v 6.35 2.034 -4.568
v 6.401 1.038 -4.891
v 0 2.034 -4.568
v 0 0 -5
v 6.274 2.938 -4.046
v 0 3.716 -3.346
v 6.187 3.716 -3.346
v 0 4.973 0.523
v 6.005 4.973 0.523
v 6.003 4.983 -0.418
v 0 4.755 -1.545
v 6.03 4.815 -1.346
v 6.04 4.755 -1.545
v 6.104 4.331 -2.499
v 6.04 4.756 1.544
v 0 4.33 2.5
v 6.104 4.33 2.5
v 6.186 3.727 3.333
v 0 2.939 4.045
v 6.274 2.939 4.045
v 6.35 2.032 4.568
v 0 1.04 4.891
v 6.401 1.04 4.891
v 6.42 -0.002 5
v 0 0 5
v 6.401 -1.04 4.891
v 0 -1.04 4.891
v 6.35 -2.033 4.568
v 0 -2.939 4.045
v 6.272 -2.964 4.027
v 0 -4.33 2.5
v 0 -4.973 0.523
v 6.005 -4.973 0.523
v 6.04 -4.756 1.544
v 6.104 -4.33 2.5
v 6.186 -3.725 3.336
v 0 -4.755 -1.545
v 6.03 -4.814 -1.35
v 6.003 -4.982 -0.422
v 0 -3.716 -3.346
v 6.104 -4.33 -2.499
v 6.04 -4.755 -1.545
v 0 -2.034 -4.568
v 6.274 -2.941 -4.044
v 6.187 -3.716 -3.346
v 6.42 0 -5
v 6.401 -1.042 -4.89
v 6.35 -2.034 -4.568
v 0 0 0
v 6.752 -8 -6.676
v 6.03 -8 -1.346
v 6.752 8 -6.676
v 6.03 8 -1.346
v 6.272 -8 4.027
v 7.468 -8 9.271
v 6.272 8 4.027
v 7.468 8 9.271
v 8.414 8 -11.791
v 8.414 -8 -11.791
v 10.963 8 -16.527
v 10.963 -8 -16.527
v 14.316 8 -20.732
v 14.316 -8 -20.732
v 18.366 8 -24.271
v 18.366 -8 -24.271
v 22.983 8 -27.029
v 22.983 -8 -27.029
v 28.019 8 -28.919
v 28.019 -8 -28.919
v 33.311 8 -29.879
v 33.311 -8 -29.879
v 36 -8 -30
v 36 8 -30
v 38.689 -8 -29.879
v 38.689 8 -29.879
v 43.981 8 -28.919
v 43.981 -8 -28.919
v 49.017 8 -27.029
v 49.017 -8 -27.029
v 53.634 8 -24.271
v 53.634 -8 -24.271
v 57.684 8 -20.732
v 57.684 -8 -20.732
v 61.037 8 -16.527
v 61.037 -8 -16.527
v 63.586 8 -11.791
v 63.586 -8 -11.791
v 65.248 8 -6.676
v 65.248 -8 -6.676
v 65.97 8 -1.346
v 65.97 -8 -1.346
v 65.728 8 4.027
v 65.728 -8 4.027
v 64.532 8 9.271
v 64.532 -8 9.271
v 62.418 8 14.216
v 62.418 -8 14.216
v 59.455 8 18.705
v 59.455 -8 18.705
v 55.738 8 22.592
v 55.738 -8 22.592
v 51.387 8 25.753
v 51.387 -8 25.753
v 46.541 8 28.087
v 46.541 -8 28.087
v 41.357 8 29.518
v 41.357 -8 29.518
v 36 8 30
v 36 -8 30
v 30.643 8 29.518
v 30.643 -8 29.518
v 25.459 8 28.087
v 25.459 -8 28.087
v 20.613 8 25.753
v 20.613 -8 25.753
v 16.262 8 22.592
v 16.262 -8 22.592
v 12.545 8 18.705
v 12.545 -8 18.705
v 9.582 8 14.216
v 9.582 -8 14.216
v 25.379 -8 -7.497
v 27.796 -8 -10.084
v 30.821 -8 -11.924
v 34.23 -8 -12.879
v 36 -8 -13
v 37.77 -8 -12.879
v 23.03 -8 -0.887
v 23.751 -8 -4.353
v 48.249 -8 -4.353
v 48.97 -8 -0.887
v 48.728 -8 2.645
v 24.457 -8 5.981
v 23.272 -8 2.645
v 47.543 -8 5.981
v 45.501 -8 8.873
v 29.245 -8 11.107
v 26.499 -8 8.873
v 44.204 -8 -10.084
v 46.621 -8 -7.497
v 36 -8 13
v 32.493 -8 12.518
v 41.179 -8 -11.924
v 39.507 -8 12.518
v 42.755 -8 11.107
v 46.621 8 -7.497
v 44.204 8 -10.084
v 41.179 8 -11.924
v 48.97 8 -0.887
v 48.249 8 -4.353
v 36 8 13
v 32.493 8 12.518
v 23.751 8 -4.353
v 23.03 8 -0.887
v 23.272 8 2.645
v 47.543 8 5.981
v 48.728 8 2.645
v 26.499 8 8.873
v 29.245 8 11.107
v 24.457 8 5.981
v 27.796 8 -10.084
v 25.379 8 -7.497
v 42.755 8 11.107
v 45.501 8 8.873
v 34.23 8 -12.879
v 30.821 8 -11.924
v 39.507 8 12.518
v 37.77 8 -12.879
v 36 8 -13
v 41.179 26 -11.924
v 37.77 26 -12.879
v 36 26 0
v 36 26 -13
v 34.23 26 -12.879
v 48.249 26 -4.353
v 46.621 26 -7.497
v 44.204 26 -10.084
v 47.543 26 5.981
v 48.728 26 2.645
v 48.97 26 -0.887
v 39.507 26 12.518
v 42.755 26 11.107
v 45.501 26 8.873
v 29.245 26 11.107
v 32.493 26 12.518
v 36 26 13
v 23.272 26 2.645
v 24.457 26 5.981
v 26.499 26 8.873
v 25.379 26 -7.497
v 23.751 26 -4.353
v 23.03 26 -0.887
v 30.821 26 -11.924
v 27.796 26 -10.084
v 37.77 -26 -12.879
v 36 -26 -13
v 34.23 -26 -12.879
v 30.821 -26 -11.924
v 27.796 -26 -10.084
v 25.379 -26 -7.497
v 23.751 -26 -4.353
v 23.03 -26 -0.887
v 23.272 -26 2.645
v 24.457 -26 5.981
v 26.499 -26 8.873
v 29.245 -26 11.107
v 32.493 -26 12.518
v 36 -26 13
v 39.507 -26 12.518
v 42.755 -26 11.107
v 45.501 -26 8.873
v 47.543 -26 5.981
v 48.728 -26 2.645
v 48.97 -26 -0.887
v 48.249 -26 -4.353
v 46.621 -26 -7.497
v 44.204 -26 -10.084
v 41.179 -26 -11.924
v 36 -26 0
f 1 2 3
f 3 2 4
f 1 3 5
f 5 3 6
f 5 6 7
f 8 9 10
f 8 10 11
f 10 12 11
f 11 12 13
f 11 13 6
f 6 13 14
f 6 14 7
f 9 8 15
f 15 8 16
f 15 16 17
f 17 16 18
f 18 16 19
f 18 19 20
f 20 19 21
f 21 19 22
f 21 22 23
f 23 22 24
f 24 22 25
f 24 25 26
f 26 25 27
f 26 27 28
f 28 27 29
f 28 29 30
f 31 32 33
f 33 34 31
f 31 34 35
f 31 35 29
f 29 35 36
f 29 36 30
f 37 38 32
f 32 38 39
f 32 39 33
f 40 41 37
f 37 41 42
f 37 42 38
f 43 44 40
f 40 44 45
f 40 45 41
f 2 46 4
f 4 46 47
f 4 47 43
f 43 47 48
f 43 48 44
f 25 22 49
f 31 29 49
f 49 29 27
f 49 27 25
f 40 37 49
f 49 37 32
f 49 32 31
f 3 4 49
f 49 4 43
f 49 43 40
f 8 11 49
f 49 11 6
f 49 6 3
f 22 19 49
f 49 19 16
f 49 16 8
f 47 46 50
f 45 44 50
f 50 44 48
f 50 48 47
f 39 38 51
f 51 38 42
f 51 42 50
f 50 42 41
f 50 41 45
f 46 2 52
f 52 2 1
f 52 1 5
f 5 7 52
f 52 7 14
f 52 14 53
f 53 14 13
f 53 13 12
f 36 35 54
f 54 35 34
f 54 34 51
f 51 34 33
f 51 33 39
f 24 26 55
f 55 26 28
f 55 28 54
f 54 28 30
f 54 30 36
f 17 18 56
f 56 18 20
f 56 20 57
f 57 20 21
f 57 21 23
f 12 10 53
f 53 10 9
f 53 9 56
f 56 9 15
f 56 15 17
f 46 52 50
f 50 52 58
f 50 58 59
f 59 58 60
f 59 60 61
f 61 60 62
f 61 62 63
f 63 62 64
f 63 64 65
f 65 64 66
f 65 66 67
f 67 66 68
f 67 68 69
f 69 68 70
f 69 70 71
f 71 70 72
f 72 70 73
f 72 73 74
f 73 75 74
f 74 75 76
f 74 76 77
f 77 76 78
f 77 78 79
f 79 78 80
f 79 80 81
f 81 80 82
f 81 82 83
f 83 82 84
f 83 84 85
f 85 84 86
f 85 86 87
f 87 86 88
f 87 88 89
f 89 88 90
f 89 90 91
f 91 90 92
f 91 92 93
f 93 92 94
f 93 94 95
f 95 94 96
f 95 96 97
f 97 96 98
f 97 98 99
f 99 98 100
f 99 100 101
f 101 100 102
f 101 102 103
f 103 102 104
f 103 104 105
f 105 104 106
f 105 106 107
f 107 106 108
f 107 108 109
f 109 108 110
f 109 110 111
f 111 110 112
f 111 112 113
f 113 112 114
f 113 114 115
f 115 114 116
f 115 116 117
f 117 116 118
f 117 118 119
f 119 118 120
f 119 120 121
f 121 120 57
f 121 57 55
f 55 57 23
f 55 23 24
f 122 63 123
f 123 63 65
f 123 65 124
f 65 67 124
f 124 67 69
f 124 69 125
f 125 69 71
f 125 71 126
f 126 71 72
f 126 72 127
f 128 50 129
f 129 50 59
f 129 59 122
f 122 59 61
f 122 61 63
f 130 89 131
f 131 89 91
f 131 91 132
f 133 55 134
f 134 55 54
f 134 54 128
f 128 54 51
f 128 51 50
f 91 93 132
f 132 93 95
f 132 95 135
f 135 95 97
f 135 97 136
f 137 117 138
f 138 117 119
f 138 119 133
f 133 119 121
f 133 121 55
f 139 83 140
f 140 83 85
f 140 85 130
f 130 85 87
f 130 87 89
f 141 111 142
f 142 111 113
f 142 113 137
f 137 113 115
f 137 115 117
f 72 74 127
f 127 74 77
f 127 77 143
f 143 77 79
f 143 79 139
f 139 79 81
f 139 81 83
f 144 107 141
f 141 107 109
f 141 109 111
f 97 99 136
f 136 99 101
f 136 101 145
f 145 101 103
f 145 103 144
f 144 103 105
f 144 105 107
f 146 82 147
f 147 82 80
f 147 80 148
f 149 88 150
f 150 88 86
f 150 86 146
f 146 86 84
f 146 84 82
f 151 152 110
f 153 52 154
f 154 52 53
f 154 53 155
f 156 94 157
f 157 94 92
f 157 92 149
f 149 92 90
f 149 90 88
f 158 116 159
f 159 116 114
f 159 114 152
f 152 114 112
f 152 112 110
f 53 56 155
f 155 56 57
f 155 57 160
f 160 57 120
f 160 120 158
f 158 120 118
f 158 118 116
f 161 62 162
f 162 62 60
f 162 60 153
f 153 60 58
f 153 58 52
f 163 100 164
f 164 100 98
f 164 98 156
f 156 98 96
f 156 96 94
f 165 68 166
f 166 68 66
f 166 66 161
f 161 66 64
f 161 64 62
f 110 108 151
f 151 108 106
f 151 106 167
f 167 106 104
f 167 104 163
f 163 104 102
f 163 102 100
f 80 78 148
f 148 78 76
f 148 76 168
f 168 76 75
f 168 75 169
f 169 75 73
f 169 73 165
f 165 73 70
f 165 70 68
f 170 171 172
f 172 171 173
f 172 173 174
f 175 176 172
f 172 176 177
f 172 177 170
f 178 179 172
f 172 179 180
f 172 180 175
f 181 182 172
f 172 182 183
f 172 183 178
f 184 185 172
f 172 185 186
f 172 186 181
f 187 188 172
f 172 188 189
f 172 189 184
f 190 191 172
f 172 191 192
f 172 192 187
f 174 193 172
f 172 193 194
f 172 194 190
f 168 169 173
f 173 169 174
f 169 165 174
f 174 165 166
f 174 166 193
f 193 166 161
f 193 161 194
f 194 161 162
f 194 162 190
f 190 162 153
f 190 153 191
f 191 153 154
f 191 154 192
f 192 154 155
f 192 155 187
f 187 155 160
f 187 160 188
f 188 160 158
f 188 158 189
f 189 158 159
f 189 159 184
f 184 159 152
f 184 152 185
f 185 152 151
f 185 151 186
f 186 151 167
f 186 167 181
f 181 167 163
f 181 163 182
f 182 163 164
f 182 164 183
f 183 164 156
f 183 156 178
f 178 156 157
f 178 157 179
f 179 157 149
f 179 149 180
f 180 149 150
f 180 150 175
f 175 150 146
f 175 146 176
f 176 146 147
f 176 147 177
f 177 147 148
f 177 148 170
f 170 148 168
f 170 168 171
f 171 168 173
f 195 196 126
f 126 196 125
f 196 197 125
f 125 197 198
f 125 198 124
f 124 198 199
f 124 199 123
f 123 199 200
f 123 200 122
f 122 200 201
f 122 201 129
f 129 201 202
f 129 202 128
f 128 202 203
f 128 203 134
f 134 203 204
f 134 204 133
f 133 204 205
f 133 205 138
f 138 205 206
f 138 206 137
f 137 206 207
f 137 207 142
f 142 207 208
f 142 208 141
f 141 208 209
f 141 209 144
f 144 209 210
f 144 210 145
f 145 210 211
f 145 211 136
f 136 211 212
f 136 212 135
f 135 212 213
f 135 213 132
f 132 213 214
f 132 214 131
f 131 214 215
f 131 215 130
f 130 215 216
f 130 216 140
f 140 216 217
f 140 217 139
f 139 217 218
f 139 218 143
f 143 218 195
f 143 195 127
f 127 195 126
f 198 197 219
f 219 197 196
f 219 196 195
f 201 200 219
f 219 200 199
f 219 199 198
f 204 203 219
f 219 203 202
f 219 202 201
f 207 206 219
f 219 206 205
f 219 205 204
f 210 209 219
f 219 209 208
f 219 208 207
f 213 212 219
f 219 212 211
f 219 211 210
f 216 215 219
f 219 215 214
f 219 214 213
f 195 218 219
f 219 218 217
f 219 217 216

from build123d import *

# Parameters (mm, degrees)
SKETCH1_R           = 5
BOSS_EXTRUDE1_DEPTH = 10
SKETCH2_R           = 30
BOSS_EXTRUDE2_DEPTH = 8
SKETCH3_R           = 13
BOSS_EXTRUDE3_DEPTH = 26


with BuildPart() as part:
    # Sketch1 → Boss-Extrude1 (new body)
    with BuildSketch(Plane(origin=(0, 0, 0), x_dir=(0, 0, -1), z_dir=(1, 0, 0))):
        Circle(SKETCH1_R)
    extrude(amount=BOSS_EXTRUDE1_DEPTH)

    # Sketch2 → Boss-Extrude2 (add, symmetric)
    with BuildSketch(Plane(origin=(0, 0, 0), x_dir=(1, 0, 0), z_dir=(0, 1, 0))):
        with Locations(Location((36, 0, 0), (0, 0, 270))):
            Circle(SKETCH2_R)
    extrude(amount=BOSS_EXTRUDE2_DEPTH, both=True)

    # Sketch3 → Boss-Extrude3 (add, symmetric)
    with BuildSketch(Plane(origin=(0, 0, 0), x_dir=(1, 0, 0), z_dir=(0, 1, 0))):
        with Locations(Location((36, 0, 0), (0, 0, 90))):
            Circle(SKETCH3_R)
    extrude(amount=BOSS_EXTRUDE3_DEPTH, both=True)


solid = part.part
